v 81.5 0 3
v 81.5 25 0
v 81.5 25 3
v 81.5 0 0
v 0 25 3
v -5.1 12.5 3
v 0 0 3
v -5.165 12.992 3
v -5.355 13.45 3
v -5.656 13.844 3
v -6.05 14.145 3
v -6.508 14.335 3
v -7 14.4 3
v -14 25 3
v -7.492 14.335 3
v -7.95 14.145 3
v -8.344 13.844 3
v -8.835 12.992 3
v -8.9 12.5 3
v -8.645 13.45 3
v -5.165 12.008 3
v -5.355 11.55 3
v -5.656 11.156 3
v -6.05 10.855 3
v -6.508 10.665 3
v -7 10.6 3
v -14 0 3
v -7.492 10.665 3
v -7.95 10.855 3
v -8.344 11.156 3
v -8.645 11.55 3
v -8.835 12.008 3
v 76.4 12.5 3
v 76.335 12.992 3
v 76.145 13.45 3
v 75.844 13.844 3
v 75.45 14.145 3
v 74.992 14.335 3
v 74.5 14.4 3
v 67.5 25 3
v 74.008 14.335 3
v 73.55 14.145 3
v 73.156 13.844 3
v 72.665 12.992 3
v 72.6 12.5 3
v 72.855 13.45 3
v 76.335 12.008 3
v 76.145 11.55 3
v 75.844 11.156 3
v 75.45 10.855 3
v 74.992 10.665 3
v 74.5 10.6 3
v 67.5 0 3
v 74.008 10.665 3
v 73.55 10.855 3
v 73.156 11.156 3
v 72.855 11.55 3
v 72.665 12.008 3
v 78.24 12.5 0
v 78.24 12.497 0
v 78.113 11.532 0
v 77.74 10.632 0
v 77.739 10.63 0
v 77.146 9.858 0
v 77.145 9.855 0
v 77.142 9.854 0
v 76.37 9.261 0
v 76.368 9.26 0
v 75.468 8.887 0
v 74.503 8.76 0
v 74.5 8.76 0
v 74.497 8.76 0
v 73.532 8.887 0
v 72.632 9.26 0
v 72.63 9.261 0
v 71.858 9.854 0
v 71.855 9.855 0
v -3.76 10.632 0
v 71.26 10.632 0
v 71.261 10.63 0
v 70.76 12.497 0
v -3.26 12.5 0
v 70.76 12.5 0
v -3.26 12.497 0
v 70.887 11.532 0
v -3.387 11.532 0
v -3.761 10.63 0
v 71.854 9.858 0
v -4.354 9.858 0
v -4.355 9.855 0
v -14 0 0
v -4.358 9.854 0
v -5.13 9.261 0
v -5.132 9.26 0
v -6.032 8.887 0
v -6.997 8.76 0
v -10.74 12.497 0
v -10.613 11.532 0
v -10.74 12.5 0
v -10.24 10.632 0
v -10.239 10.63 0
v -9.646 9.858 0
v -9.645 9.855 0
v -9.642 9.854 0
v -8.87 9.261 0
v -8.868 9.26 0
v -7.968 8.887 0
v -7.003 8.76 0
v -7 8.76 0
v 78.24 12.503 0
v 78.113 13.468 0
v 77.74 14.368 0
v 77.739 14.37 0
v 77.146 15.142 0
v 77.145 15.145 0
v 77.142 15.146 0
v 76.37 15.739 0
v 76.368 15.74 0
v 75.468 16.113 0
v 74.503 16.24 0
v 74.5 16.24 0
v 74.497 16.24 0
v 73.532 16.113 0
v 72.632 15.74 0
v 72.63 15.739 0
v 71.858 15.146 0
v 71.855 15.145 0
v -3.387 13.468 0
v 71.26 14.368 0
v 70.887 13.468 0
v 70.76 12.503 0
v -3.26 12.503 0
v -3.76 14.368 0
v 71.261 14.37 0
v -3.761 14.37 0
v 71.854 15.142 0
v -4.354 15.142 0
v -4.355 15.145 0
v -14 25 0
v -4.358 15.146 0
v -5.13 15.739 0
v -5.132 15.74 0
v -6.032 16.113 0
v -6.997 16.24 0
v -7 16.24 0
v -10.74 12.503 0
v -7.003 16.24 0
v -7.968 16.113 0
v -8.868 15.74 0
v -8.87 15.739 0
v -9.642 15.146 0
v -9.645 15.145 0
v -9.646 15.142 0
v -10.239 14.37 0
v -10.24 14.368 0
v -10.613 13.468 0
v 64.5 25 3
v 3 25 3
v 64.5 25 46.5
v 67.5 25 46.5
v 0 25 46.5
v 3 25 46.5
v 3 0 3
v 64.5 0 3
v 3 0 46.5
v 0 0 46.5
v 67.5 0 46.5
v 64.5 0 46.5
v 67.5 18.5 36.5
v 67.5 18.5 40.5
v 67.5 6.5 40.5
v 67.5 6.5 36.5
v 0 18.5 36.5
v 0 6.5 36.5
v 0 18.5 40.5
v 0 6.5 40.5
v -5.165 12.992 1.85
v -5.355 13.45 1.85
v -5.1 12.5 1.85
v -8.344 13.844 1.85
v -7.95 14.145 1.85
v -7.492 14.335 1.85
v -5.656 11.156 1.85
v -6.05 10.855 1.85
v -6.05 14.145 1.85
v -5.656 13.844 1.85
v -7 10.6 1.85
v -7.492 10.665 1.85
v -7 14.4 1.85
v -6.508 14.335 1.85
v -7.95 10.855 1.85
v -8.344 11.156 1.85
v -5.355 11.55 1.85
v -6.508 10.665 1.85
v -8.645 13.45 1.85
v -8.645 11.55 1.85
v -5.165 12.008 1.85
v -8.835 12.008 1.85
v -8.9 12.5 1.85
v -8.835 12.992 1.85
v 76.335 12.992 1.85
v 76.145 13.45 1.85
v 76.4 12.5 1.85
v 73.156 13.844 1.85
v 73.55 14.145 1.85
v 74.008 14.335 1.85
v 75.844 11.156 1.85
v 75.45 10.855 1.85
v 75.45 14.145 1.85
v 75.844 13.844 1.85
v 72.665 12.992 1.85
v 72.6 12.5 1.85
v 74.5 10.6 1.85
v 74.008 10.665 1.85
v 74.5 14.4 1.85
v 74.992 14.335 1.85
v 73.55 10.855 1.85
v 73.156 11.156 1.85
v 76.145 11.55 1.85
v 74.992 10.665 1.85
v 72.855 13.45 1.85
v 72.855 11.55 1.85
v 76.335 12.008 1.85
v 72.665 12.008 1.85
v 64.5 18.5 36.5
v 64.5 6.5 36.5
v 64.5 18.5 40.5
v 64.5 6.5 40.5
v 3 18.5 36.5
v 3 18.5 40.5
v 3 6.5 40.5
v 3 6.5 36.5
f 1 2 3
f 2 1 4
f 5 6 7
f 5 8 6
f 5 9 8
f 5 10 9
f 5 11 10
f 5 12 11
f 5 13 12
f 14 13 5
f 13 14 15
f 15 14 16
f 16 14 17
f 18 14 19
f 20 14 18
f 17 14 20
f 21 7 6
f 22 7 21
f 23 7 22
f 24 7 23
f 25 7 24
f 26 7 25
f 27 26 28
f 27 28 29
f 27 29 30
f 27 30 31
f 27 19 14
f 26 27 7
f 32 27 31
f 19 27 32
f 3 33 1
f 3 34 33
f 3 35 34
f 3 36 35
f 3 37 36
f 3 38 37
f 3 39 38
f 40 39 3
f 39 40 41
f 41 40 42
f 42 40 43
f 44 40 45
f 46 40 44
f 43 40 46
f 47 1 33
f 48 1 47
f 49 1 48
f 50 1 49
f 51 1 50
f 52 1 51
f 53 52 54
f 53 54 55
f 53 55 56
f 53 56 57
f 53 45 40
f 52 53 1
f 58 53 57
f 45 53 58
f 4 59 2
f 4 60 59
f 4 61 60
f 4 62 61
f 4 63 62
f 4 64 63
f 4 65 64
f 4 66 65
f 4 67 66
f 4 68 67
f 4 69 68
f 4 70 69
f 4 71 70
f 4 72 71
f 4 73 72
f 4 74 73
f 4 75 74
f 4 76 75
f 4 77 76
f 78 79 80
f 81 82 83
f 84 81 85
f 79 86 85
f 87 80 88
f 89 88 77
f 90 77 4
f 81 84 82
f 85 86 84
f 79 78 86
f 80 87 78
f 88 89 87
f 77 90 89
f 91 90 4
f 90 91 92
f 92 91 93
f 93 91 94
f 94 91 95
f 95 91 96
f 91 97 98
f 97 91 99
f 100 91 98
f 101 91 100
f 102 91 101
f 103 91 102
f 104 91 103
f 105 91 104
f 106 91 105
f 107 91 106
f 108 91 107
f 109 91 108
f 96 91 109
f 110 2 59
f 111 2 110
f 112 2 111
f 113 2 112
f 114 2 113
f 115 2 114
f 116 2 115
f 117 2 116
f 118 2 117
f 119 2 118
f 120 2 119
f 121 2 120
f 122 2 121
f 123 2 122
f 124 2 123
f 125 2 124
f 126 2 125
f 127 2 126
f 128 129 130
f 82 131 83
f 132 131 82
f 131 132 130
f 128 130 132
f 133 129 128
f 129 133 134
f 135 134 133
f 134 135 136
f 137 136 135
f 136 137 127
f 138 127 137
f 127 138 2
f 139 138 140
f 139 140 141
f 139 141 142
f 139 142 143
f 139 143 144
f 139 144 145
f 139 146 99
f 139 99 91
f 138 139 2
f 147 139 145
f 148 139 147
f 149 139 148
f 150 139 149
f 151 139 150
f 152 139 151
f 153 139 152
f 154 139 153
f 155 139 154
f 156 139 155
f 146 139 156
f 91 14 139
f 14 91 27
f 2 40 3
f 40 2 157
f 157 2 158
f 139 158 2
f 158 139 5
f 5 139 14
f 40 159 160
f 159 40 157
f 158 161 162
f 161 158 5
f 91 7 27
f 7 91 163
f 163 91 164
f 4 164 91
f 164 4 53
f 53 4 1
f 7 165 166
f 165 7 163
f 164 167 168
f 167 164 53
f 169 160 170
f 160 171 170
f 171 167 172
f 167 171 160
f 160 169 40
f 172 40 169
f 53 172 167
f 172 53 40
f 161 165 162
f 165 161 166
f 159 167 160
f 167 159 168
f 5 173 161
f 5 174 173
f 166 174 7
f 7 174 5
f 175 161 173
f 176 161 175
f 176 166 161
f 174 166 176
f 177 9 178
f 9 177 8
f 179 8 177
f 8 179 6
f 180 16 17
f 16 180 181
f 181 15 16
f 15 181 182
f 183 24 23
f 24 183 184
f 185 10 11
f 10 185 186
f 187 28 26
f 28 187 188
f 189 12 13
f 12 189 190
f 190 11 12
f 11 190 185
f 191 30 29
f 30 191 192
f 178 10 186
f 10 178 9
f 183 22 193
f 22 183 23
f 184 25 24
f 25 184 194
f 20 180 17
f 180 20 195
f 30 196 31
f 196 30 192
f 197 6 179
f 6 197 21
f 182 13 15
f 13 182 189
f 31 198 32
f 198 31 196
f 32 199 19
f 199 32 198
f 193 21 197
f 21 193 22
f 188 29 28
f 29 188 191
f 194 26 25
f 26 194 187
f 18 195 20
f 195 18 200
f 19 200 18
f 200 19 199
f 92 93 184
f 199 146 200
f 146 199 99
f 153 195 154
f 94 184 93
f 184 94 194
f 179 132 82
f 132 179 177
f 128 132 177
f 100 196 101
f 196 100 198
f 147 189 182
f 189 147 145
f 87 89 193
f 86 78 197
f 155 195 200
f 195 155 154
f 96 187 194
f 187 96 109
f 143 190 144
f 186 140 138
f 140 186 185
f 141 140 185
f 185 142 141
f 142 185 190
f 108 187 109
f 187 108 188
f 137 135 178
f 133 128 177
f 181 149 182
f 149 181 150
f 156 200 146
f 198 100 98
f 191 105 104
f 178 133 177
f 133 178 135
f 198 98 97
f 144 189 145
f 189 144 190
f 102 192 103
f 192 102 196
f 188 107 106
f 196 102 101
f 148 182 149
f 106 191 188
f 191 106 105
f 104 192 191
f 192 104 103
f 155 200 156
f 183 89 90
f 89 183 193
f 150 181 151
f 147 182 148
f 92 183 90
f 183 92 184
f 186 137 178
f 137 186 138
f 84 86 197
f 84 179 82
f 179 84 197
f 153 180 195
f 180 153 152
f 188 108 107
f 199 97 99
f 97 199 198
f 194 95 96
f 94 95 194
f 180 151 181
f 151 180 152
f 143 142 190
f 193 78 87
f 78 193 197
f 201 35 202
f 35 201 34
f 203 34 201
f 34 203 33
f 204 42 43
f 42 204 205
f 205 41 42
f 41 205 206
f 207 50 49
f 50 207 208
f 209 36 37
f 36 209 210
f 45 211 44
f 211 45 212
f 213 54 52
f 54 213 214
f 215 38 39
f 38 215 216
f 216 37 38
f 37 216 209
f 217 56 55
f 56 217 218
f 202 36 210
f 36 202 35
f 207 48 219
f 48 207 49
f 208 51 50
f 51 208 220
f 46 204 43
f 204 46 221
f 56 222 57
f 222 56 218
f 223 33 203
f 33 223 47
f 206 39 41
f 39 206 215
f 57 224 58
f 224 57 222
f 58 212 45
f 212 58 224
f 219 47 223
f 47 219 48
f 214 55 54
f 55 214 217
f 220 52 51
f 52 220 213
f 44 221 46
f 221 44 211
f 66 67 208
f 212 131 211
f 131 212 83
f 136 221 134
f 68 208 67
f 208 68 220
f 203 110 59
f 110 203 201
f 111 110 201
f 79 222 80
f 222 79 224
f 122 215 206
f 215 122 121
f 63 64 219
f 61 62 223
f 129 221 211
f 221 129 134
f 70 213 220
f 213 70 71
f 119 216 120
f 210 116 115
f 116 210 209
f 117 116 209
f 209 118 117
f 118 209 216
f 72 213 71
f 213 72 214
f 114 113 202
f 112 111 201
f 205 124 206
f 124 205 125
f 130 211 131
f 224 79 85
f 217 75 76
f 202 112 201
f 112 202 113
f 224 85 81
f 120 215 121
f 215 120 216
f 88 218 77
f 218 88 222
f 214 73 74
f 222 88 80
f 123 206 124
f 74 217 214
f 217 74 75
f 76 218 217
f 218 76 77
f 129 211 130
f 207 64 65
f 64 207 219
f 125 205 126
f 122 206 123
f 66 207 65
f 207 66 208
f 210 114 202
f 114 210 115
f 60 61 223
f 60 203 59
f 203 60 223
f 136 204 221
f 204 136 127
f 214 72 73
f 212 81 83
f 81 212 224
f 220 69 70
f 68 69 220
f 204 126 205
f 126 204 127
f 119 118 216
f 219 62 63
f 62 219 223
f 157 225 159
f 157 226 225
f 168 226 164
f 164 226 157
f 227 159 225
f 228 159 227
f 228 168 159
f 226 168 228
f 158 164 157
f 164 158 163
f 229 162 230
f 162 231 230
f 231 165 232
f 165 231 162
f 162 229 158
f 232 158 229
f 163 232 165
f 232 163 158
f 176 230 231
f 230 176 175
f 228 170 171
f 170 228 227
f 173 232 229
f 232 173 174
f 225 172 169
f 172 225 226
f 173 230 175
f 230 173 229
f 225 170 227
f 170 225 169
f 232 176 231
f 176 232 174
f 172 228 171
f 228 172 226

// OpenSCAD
// Power bar cradle. Two of these screw to the underside of the top (behind the rail, near
// the Y60) and the power bar drops into them; a cable tie through the slots holds it if
// the bar is light. Measure your bar's width and height and set them below.
// Screws: #6 x 5/8 in into the desk top, two per cradle, 13 mm penetration (under the
// 21 mm rule). The countersinks are on the flat face that points at the floor.
// Print with the open side up, PETG or ABS.

bar_w = 60;    // power bar width
bar_h = 42;    // power bar height
slack = 1.5;
wall  = 3;
depth = 25;    // how much of the bar's length each cradle holds
tab   = 14;    // screw tabs either side, against the desk underside
hole  = 3.8;   // #6 clearance
csk   = 7.5;

W = bar_w + slack + 2 * wall;
difference() {
    union() {
        translate([-tab, 0, 0]) cube([W + 2 * tab, depth, wall]);                     // mounting plate against the underside
        cube([W, depth, bar_h + slack + wall]);                                        // the U
    }
    translate([wall, -1, wall]) cube([bar_w + slack, depth + 2, bar_h + slack + 1]);    // the bar's pocket
    for (x = [-tab / 2, W + tab / 2]) translate([x, depth / 2, -1]) {
        cylinder(d = hole, h = wall + 2, $fn = 24);
        translate([0, 0, 1 - 0.01]) cylinder(d1 = csk, d2 = hole, h = (csk - hole) / 2 + 0.01, $fn = 24);   // countersink on the underside face
    }
    translate([-1, depth / 2 - 6, bar_h + slack + wall - 10]) cube([W + 2, 12, 4]);   // cable-tie slot through both side walls, near the top
}
